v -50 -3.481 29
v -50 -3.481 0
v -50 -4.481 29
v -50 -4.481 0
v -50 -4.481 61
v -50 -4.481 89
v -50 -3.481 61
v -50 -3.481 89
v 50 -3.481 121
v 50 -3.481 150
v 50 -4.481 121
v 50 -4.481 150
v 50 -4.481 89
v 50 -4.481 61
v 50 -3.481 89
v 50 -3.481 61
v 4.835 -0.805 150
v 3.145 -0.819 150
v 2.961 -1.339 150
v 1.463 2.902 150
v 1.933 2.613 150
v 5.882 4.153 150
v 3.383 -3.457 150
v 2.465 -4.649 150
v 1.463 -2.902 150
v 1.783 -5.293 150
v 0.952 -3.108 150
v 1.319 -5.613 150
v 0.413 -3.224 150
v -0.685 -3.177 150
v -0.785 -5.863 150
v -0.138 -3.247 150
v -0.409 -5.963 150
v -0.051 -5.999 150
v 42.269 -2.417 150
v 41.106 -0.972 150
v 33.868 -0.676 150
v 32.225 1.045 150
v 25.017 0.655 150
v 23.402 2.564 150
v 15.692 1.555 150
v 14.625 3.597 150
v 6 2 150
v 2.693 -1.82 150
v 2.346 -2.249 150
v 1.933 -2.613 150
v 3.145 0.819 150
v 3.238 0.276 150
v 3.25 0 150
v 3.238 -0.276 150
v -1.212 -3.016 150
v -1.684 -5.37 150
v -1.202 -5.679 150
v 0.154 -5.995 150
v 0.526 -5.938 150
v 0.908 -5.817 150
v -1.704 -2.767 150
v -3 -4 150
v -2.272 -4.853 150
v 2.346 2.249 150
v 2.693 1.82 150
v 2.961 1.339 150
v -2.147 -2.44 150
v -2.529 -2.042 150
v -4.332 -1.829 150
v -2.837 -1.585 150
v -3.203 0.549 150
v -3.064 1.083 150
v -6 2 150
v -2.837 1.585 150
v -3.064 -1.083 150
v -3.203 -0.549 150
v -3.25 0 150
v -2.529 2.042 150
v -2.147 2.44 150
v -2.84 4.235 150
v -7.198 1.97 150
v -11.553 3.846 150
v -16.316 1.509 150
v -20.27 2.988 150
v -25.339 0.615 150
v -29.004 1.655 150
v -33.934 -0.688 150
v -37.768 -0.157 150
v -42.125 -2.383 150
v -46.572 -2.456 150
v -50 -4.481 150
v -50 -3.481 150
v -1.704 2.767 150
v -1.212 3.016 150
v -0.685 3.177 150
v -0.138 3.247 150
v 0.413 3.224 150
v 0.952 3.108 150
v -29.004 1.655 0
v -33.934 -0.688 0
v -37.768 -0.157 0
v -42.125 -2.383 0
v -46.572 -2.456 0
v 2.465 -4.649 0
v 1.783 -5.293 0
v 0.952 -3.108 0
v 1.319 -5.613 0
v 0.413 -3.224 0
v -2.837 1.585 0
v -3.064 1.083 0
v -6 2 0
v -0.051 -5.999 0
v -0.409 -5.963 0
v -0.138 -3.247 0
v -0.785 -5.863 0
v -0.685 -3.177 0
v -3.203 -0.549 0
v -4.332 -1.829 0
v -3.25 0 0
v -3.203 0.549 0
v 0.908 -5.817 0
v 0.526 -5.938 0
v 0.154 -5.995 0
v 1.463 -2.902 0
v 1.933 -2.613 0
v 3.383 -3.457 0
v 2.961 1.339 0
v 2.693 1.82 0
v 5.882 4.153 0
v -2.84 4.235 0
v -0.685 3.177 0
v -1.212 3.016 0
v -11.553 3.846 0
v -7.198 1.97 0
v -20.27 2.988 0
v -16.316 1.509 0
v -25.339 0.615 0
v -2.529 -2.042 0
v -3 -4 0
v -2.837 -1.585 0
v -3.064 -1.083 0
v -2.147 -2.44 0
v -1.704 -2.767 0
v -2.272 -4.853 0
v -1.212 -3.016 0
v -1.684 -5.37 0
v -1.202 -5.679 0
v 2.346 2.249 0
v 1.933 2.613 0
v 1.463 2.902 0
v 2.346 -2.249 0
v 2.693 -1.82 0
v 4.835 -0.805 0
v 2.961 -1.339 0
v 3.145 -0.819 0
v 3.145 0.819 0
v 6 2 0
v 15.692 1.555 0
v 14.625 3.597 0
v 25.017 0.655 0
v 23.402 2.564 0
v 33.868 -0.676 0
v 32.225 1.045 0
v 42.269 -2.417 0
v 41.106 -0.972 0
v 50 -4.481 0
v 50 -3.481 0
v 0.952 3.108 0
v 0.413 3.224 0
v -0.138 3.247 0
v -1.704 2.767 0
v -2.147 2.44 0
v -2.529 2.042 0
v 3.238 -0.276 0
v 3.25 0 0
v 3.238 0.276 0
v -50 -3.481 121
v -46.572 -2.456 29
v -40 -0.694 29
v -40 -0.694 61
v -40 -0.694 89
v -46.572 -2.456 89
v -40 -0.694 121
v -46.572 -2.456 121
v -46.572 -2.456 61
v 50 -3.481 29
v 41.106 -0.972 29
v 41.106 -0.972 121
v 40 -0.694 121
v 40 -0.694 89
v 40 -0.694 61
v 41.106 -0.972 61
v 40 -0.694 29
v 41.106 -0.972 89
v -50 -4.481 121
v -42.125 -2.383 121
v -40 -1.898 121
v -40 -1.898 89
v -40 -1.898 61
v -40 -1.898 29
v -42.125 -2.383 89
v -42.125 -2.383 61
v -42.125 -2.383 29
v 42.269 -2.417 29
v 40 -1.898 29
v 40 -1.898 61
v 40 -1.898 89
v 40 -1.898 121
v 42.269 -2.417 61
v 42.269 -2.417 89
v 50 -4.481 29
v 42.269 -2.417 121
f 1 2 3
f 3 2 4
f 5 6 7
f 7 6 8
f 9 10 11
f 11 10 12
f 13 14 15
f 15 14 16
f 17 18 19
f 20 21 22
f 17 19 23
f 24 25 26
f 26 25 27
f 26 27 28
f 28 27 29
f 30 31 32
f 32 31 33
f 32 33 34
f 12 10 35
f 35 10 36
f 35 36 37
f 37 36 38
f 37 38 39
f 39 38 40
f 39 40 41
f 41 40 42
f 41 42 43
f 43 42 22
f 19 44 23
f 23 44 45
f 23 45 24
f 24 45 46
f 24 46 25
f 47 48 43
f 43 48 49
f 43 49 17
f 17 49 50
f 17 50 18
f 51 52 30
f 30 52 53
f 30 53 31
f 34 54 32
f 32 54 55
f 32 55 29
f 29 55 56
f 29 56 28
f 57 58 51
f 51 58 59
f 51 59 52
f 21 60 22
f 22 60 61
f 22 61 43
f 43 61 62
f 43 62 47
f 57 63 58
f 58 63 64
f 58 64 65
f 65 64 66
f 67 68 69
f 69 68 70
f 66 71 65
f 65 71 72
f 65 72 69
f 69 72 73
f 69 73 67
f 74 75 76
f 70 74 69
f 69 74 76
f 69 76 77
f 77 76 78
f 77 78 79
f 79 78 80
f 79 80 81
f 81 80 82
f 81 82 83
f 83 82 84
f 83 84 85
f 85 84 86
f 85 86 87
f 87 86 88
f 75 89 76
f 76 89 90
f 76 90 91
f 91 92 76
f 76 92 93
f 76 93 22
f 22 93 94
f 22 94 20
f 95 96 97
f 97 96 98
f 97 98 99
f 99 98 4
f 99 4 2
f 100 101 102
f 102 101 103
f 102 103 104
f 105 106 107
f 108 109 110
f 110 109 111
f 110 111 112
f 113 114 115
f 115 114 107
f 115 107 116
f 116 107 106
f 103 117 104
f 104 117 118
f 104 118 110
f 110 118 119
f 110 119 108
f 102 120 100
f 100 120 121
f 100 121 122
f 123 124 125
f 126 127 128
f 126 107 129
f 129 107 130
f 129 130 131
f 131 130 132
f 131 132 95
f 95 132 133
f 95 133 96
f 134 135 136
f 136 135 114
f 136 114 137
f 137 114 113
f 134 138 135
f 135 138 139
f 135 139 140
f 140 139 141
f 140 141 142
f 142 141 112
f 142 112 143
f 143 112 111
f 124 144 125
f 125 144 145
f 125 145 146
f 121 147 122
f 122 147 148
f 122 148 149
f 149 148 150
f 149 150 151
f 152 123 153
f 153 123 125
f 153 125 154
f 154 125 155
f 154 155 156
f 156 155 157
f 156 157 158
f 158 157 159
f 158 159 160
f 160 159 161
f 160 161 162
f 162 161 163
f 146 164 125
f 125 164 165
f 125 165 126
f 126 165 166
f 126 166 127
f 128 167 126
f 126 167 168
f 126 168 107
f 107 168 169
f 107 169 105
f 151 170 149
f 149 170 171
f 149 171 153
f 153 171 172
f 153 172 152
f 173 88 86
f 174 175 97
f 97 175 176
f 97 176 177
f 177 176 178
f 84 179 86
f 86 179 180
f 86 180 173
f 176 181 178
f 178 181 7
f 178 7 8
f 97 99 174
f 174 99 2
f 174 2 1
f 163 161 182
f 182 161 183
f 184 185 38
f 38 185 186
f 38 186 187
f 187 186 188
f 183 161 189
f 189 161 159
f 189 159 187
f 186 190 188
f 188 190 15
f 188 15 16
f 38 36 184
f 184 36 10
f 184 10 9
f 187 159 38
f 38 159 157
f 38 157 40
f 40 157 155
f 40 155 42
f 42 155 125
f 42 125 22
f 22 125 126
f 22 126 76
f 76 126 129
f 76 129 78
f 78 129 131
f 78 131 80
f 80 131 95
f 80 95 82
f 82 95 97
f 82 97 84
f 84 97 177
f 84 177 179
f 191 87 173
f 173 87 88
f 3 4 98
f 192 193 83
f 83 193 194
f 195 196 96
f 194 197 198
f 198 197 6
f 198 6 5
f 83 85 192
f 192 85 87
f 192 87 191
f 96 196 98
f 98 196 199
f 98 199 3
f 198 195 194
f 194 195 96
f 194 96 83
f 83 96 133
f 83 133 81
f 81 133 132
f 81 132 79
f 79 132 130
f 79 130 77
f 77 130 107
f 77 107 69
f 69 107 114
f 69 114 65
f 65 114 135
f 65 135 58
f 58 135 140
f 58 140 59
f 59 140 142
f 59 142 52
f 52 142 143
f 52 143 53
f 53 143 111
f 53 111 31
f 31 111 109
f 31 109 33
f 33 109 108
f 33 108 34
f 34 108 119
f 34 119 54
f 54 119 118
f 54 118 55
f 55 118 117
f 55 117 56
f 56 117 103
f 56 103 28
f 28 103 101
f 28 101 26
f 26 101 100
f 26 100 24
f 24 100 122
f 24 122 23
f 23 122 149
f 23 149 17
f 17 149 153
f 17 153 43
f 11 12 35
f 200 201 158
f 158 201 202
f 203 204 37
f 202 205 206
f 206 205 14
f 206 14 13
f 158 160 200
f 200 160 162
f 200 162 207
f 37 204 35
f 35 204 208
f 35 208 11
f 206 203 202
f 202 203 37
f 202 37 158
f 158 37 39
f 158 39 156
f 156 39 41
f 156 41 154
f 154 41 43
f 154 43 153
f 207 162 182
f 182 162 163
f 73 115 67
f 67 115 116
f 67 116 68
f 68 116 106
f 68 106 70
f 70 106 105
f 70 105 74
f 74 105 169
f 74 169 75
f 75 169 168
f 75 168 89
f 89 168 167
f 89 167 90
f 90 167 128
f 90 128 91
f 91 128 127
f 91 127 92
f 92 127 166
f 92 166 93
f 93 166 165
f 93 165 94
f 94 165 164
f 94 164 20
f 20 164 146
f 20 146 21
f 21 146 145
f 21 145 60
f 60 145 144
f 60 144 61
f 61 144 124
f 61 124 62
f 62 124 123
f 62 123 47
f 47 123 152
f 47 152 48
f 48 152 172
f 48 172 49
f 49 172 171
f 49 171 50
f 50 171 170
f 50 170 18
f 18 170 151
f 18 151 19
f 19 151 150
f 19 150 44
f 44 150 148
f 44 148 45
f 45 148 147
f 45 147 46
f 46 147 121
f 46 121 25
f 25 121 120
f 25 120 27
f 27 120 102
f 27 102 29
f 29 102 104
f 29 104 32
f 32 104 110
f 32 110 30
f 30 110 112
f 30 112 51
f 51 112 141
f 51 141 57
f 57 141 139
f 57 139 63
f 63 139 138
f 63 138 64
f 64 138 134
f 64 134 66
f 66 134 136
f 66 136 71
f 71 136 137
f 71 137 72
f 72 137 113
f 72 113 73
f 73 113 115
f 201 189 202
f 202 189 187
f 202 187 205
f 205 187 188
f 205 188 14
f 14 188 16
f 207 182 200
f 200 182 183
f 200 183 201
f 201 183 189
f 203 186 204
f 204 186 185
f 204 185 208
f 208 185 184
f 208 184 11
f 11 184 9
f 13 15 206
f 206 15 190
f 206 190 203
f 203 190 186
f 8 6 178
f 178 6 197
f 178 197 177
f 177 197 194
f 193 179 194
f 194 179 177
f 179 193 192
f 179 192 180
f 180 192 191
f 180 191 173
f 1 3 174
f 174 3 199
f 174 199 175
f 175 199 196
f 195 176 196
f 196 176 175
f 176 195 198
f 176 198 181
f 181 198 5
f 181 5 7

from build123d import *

# Parameters (mm, degrees)
SKETCH_1_R               = 3.25
EXTRUDE_1_DEPTH          = 150
CUT_EXTRUDE_1_DEPTH      = 159.227684181
CUT_EXTRUDE_1_DEPTH_BACK = 159.227684181
SKETCH_2_W               = 10
SKETCH_2_H               = 32


with BuildPart() as part:
    # 草圖1 → 填料-伸長1 (new body)
    with BuildSketch(Plane.XY):
        with BuildLine():
            Line((-50, -3.480646824), (-50, -4.480646824))
            add(Edge.make_bspline(
                [(-6, 2), (-30, 1.47316016), (-50, -4.480646824)],
                knots=[0, 0, 0, 1, 1, 1], degree=2))
            add(Edge.make_bspline(
                [(-6, 2), (0, -14), (6, 2)],
                knots=[0, 0, 0, 1, 1, 1], degree=2))
            add(Edge.make_bspline(
                [(6, 2), (30, 1.47316016), (50, -4.480646824)],
                knots=[0, 0, 0, 1, 1, 1], degree=2))
            Line((50, -4.480646824), (50, -3.480646824))
            add(Edge.make_bspline(
                [(-50, -3.480646824), (0, 12), (50, -3.480646824)],
                knots=[0, 0, 0, 1, 1, 1], degree=2))
        make_face()
        Circle(SKETCH_1_R, mode=Mode.SUBTRACT)
    extrude(amount=EXTRUDE_1_DEPTH)

    # 草圖2 → 除料-伸長1 (cut, two sides: drawn at the far end of the back side and taken through both)
    with BuildSketch(Plane(origin=(0, 0, 0), x_dir=(1, 0, 0), z_dir=(0, 1, 0)).offset(-CUT_EXTRUDE_1_DEPTH_BACK)):
        with Locations((-45, -105)):
            Rectangle(SKETCH_2_W, SKETCH_2_H)
        with Locations((-45, -45)):
            Rectangle(SKETCH_2_W, SKETCH_2_H)
        with Locations((45, -45)):
            Rectangle(SKETCH_2_W, SKETCH_2_H)
        with Locations((45, -105)):
            Rectangle(SKETCH_2_W, SKETCH_2_H)
    extrude(amount=CUT_EXTRUDE_1_DEPTH + CUT_EXTRUDE_1_DEPTH_BACK, mode=Mode.SUBTRACT)


solid = part.part
